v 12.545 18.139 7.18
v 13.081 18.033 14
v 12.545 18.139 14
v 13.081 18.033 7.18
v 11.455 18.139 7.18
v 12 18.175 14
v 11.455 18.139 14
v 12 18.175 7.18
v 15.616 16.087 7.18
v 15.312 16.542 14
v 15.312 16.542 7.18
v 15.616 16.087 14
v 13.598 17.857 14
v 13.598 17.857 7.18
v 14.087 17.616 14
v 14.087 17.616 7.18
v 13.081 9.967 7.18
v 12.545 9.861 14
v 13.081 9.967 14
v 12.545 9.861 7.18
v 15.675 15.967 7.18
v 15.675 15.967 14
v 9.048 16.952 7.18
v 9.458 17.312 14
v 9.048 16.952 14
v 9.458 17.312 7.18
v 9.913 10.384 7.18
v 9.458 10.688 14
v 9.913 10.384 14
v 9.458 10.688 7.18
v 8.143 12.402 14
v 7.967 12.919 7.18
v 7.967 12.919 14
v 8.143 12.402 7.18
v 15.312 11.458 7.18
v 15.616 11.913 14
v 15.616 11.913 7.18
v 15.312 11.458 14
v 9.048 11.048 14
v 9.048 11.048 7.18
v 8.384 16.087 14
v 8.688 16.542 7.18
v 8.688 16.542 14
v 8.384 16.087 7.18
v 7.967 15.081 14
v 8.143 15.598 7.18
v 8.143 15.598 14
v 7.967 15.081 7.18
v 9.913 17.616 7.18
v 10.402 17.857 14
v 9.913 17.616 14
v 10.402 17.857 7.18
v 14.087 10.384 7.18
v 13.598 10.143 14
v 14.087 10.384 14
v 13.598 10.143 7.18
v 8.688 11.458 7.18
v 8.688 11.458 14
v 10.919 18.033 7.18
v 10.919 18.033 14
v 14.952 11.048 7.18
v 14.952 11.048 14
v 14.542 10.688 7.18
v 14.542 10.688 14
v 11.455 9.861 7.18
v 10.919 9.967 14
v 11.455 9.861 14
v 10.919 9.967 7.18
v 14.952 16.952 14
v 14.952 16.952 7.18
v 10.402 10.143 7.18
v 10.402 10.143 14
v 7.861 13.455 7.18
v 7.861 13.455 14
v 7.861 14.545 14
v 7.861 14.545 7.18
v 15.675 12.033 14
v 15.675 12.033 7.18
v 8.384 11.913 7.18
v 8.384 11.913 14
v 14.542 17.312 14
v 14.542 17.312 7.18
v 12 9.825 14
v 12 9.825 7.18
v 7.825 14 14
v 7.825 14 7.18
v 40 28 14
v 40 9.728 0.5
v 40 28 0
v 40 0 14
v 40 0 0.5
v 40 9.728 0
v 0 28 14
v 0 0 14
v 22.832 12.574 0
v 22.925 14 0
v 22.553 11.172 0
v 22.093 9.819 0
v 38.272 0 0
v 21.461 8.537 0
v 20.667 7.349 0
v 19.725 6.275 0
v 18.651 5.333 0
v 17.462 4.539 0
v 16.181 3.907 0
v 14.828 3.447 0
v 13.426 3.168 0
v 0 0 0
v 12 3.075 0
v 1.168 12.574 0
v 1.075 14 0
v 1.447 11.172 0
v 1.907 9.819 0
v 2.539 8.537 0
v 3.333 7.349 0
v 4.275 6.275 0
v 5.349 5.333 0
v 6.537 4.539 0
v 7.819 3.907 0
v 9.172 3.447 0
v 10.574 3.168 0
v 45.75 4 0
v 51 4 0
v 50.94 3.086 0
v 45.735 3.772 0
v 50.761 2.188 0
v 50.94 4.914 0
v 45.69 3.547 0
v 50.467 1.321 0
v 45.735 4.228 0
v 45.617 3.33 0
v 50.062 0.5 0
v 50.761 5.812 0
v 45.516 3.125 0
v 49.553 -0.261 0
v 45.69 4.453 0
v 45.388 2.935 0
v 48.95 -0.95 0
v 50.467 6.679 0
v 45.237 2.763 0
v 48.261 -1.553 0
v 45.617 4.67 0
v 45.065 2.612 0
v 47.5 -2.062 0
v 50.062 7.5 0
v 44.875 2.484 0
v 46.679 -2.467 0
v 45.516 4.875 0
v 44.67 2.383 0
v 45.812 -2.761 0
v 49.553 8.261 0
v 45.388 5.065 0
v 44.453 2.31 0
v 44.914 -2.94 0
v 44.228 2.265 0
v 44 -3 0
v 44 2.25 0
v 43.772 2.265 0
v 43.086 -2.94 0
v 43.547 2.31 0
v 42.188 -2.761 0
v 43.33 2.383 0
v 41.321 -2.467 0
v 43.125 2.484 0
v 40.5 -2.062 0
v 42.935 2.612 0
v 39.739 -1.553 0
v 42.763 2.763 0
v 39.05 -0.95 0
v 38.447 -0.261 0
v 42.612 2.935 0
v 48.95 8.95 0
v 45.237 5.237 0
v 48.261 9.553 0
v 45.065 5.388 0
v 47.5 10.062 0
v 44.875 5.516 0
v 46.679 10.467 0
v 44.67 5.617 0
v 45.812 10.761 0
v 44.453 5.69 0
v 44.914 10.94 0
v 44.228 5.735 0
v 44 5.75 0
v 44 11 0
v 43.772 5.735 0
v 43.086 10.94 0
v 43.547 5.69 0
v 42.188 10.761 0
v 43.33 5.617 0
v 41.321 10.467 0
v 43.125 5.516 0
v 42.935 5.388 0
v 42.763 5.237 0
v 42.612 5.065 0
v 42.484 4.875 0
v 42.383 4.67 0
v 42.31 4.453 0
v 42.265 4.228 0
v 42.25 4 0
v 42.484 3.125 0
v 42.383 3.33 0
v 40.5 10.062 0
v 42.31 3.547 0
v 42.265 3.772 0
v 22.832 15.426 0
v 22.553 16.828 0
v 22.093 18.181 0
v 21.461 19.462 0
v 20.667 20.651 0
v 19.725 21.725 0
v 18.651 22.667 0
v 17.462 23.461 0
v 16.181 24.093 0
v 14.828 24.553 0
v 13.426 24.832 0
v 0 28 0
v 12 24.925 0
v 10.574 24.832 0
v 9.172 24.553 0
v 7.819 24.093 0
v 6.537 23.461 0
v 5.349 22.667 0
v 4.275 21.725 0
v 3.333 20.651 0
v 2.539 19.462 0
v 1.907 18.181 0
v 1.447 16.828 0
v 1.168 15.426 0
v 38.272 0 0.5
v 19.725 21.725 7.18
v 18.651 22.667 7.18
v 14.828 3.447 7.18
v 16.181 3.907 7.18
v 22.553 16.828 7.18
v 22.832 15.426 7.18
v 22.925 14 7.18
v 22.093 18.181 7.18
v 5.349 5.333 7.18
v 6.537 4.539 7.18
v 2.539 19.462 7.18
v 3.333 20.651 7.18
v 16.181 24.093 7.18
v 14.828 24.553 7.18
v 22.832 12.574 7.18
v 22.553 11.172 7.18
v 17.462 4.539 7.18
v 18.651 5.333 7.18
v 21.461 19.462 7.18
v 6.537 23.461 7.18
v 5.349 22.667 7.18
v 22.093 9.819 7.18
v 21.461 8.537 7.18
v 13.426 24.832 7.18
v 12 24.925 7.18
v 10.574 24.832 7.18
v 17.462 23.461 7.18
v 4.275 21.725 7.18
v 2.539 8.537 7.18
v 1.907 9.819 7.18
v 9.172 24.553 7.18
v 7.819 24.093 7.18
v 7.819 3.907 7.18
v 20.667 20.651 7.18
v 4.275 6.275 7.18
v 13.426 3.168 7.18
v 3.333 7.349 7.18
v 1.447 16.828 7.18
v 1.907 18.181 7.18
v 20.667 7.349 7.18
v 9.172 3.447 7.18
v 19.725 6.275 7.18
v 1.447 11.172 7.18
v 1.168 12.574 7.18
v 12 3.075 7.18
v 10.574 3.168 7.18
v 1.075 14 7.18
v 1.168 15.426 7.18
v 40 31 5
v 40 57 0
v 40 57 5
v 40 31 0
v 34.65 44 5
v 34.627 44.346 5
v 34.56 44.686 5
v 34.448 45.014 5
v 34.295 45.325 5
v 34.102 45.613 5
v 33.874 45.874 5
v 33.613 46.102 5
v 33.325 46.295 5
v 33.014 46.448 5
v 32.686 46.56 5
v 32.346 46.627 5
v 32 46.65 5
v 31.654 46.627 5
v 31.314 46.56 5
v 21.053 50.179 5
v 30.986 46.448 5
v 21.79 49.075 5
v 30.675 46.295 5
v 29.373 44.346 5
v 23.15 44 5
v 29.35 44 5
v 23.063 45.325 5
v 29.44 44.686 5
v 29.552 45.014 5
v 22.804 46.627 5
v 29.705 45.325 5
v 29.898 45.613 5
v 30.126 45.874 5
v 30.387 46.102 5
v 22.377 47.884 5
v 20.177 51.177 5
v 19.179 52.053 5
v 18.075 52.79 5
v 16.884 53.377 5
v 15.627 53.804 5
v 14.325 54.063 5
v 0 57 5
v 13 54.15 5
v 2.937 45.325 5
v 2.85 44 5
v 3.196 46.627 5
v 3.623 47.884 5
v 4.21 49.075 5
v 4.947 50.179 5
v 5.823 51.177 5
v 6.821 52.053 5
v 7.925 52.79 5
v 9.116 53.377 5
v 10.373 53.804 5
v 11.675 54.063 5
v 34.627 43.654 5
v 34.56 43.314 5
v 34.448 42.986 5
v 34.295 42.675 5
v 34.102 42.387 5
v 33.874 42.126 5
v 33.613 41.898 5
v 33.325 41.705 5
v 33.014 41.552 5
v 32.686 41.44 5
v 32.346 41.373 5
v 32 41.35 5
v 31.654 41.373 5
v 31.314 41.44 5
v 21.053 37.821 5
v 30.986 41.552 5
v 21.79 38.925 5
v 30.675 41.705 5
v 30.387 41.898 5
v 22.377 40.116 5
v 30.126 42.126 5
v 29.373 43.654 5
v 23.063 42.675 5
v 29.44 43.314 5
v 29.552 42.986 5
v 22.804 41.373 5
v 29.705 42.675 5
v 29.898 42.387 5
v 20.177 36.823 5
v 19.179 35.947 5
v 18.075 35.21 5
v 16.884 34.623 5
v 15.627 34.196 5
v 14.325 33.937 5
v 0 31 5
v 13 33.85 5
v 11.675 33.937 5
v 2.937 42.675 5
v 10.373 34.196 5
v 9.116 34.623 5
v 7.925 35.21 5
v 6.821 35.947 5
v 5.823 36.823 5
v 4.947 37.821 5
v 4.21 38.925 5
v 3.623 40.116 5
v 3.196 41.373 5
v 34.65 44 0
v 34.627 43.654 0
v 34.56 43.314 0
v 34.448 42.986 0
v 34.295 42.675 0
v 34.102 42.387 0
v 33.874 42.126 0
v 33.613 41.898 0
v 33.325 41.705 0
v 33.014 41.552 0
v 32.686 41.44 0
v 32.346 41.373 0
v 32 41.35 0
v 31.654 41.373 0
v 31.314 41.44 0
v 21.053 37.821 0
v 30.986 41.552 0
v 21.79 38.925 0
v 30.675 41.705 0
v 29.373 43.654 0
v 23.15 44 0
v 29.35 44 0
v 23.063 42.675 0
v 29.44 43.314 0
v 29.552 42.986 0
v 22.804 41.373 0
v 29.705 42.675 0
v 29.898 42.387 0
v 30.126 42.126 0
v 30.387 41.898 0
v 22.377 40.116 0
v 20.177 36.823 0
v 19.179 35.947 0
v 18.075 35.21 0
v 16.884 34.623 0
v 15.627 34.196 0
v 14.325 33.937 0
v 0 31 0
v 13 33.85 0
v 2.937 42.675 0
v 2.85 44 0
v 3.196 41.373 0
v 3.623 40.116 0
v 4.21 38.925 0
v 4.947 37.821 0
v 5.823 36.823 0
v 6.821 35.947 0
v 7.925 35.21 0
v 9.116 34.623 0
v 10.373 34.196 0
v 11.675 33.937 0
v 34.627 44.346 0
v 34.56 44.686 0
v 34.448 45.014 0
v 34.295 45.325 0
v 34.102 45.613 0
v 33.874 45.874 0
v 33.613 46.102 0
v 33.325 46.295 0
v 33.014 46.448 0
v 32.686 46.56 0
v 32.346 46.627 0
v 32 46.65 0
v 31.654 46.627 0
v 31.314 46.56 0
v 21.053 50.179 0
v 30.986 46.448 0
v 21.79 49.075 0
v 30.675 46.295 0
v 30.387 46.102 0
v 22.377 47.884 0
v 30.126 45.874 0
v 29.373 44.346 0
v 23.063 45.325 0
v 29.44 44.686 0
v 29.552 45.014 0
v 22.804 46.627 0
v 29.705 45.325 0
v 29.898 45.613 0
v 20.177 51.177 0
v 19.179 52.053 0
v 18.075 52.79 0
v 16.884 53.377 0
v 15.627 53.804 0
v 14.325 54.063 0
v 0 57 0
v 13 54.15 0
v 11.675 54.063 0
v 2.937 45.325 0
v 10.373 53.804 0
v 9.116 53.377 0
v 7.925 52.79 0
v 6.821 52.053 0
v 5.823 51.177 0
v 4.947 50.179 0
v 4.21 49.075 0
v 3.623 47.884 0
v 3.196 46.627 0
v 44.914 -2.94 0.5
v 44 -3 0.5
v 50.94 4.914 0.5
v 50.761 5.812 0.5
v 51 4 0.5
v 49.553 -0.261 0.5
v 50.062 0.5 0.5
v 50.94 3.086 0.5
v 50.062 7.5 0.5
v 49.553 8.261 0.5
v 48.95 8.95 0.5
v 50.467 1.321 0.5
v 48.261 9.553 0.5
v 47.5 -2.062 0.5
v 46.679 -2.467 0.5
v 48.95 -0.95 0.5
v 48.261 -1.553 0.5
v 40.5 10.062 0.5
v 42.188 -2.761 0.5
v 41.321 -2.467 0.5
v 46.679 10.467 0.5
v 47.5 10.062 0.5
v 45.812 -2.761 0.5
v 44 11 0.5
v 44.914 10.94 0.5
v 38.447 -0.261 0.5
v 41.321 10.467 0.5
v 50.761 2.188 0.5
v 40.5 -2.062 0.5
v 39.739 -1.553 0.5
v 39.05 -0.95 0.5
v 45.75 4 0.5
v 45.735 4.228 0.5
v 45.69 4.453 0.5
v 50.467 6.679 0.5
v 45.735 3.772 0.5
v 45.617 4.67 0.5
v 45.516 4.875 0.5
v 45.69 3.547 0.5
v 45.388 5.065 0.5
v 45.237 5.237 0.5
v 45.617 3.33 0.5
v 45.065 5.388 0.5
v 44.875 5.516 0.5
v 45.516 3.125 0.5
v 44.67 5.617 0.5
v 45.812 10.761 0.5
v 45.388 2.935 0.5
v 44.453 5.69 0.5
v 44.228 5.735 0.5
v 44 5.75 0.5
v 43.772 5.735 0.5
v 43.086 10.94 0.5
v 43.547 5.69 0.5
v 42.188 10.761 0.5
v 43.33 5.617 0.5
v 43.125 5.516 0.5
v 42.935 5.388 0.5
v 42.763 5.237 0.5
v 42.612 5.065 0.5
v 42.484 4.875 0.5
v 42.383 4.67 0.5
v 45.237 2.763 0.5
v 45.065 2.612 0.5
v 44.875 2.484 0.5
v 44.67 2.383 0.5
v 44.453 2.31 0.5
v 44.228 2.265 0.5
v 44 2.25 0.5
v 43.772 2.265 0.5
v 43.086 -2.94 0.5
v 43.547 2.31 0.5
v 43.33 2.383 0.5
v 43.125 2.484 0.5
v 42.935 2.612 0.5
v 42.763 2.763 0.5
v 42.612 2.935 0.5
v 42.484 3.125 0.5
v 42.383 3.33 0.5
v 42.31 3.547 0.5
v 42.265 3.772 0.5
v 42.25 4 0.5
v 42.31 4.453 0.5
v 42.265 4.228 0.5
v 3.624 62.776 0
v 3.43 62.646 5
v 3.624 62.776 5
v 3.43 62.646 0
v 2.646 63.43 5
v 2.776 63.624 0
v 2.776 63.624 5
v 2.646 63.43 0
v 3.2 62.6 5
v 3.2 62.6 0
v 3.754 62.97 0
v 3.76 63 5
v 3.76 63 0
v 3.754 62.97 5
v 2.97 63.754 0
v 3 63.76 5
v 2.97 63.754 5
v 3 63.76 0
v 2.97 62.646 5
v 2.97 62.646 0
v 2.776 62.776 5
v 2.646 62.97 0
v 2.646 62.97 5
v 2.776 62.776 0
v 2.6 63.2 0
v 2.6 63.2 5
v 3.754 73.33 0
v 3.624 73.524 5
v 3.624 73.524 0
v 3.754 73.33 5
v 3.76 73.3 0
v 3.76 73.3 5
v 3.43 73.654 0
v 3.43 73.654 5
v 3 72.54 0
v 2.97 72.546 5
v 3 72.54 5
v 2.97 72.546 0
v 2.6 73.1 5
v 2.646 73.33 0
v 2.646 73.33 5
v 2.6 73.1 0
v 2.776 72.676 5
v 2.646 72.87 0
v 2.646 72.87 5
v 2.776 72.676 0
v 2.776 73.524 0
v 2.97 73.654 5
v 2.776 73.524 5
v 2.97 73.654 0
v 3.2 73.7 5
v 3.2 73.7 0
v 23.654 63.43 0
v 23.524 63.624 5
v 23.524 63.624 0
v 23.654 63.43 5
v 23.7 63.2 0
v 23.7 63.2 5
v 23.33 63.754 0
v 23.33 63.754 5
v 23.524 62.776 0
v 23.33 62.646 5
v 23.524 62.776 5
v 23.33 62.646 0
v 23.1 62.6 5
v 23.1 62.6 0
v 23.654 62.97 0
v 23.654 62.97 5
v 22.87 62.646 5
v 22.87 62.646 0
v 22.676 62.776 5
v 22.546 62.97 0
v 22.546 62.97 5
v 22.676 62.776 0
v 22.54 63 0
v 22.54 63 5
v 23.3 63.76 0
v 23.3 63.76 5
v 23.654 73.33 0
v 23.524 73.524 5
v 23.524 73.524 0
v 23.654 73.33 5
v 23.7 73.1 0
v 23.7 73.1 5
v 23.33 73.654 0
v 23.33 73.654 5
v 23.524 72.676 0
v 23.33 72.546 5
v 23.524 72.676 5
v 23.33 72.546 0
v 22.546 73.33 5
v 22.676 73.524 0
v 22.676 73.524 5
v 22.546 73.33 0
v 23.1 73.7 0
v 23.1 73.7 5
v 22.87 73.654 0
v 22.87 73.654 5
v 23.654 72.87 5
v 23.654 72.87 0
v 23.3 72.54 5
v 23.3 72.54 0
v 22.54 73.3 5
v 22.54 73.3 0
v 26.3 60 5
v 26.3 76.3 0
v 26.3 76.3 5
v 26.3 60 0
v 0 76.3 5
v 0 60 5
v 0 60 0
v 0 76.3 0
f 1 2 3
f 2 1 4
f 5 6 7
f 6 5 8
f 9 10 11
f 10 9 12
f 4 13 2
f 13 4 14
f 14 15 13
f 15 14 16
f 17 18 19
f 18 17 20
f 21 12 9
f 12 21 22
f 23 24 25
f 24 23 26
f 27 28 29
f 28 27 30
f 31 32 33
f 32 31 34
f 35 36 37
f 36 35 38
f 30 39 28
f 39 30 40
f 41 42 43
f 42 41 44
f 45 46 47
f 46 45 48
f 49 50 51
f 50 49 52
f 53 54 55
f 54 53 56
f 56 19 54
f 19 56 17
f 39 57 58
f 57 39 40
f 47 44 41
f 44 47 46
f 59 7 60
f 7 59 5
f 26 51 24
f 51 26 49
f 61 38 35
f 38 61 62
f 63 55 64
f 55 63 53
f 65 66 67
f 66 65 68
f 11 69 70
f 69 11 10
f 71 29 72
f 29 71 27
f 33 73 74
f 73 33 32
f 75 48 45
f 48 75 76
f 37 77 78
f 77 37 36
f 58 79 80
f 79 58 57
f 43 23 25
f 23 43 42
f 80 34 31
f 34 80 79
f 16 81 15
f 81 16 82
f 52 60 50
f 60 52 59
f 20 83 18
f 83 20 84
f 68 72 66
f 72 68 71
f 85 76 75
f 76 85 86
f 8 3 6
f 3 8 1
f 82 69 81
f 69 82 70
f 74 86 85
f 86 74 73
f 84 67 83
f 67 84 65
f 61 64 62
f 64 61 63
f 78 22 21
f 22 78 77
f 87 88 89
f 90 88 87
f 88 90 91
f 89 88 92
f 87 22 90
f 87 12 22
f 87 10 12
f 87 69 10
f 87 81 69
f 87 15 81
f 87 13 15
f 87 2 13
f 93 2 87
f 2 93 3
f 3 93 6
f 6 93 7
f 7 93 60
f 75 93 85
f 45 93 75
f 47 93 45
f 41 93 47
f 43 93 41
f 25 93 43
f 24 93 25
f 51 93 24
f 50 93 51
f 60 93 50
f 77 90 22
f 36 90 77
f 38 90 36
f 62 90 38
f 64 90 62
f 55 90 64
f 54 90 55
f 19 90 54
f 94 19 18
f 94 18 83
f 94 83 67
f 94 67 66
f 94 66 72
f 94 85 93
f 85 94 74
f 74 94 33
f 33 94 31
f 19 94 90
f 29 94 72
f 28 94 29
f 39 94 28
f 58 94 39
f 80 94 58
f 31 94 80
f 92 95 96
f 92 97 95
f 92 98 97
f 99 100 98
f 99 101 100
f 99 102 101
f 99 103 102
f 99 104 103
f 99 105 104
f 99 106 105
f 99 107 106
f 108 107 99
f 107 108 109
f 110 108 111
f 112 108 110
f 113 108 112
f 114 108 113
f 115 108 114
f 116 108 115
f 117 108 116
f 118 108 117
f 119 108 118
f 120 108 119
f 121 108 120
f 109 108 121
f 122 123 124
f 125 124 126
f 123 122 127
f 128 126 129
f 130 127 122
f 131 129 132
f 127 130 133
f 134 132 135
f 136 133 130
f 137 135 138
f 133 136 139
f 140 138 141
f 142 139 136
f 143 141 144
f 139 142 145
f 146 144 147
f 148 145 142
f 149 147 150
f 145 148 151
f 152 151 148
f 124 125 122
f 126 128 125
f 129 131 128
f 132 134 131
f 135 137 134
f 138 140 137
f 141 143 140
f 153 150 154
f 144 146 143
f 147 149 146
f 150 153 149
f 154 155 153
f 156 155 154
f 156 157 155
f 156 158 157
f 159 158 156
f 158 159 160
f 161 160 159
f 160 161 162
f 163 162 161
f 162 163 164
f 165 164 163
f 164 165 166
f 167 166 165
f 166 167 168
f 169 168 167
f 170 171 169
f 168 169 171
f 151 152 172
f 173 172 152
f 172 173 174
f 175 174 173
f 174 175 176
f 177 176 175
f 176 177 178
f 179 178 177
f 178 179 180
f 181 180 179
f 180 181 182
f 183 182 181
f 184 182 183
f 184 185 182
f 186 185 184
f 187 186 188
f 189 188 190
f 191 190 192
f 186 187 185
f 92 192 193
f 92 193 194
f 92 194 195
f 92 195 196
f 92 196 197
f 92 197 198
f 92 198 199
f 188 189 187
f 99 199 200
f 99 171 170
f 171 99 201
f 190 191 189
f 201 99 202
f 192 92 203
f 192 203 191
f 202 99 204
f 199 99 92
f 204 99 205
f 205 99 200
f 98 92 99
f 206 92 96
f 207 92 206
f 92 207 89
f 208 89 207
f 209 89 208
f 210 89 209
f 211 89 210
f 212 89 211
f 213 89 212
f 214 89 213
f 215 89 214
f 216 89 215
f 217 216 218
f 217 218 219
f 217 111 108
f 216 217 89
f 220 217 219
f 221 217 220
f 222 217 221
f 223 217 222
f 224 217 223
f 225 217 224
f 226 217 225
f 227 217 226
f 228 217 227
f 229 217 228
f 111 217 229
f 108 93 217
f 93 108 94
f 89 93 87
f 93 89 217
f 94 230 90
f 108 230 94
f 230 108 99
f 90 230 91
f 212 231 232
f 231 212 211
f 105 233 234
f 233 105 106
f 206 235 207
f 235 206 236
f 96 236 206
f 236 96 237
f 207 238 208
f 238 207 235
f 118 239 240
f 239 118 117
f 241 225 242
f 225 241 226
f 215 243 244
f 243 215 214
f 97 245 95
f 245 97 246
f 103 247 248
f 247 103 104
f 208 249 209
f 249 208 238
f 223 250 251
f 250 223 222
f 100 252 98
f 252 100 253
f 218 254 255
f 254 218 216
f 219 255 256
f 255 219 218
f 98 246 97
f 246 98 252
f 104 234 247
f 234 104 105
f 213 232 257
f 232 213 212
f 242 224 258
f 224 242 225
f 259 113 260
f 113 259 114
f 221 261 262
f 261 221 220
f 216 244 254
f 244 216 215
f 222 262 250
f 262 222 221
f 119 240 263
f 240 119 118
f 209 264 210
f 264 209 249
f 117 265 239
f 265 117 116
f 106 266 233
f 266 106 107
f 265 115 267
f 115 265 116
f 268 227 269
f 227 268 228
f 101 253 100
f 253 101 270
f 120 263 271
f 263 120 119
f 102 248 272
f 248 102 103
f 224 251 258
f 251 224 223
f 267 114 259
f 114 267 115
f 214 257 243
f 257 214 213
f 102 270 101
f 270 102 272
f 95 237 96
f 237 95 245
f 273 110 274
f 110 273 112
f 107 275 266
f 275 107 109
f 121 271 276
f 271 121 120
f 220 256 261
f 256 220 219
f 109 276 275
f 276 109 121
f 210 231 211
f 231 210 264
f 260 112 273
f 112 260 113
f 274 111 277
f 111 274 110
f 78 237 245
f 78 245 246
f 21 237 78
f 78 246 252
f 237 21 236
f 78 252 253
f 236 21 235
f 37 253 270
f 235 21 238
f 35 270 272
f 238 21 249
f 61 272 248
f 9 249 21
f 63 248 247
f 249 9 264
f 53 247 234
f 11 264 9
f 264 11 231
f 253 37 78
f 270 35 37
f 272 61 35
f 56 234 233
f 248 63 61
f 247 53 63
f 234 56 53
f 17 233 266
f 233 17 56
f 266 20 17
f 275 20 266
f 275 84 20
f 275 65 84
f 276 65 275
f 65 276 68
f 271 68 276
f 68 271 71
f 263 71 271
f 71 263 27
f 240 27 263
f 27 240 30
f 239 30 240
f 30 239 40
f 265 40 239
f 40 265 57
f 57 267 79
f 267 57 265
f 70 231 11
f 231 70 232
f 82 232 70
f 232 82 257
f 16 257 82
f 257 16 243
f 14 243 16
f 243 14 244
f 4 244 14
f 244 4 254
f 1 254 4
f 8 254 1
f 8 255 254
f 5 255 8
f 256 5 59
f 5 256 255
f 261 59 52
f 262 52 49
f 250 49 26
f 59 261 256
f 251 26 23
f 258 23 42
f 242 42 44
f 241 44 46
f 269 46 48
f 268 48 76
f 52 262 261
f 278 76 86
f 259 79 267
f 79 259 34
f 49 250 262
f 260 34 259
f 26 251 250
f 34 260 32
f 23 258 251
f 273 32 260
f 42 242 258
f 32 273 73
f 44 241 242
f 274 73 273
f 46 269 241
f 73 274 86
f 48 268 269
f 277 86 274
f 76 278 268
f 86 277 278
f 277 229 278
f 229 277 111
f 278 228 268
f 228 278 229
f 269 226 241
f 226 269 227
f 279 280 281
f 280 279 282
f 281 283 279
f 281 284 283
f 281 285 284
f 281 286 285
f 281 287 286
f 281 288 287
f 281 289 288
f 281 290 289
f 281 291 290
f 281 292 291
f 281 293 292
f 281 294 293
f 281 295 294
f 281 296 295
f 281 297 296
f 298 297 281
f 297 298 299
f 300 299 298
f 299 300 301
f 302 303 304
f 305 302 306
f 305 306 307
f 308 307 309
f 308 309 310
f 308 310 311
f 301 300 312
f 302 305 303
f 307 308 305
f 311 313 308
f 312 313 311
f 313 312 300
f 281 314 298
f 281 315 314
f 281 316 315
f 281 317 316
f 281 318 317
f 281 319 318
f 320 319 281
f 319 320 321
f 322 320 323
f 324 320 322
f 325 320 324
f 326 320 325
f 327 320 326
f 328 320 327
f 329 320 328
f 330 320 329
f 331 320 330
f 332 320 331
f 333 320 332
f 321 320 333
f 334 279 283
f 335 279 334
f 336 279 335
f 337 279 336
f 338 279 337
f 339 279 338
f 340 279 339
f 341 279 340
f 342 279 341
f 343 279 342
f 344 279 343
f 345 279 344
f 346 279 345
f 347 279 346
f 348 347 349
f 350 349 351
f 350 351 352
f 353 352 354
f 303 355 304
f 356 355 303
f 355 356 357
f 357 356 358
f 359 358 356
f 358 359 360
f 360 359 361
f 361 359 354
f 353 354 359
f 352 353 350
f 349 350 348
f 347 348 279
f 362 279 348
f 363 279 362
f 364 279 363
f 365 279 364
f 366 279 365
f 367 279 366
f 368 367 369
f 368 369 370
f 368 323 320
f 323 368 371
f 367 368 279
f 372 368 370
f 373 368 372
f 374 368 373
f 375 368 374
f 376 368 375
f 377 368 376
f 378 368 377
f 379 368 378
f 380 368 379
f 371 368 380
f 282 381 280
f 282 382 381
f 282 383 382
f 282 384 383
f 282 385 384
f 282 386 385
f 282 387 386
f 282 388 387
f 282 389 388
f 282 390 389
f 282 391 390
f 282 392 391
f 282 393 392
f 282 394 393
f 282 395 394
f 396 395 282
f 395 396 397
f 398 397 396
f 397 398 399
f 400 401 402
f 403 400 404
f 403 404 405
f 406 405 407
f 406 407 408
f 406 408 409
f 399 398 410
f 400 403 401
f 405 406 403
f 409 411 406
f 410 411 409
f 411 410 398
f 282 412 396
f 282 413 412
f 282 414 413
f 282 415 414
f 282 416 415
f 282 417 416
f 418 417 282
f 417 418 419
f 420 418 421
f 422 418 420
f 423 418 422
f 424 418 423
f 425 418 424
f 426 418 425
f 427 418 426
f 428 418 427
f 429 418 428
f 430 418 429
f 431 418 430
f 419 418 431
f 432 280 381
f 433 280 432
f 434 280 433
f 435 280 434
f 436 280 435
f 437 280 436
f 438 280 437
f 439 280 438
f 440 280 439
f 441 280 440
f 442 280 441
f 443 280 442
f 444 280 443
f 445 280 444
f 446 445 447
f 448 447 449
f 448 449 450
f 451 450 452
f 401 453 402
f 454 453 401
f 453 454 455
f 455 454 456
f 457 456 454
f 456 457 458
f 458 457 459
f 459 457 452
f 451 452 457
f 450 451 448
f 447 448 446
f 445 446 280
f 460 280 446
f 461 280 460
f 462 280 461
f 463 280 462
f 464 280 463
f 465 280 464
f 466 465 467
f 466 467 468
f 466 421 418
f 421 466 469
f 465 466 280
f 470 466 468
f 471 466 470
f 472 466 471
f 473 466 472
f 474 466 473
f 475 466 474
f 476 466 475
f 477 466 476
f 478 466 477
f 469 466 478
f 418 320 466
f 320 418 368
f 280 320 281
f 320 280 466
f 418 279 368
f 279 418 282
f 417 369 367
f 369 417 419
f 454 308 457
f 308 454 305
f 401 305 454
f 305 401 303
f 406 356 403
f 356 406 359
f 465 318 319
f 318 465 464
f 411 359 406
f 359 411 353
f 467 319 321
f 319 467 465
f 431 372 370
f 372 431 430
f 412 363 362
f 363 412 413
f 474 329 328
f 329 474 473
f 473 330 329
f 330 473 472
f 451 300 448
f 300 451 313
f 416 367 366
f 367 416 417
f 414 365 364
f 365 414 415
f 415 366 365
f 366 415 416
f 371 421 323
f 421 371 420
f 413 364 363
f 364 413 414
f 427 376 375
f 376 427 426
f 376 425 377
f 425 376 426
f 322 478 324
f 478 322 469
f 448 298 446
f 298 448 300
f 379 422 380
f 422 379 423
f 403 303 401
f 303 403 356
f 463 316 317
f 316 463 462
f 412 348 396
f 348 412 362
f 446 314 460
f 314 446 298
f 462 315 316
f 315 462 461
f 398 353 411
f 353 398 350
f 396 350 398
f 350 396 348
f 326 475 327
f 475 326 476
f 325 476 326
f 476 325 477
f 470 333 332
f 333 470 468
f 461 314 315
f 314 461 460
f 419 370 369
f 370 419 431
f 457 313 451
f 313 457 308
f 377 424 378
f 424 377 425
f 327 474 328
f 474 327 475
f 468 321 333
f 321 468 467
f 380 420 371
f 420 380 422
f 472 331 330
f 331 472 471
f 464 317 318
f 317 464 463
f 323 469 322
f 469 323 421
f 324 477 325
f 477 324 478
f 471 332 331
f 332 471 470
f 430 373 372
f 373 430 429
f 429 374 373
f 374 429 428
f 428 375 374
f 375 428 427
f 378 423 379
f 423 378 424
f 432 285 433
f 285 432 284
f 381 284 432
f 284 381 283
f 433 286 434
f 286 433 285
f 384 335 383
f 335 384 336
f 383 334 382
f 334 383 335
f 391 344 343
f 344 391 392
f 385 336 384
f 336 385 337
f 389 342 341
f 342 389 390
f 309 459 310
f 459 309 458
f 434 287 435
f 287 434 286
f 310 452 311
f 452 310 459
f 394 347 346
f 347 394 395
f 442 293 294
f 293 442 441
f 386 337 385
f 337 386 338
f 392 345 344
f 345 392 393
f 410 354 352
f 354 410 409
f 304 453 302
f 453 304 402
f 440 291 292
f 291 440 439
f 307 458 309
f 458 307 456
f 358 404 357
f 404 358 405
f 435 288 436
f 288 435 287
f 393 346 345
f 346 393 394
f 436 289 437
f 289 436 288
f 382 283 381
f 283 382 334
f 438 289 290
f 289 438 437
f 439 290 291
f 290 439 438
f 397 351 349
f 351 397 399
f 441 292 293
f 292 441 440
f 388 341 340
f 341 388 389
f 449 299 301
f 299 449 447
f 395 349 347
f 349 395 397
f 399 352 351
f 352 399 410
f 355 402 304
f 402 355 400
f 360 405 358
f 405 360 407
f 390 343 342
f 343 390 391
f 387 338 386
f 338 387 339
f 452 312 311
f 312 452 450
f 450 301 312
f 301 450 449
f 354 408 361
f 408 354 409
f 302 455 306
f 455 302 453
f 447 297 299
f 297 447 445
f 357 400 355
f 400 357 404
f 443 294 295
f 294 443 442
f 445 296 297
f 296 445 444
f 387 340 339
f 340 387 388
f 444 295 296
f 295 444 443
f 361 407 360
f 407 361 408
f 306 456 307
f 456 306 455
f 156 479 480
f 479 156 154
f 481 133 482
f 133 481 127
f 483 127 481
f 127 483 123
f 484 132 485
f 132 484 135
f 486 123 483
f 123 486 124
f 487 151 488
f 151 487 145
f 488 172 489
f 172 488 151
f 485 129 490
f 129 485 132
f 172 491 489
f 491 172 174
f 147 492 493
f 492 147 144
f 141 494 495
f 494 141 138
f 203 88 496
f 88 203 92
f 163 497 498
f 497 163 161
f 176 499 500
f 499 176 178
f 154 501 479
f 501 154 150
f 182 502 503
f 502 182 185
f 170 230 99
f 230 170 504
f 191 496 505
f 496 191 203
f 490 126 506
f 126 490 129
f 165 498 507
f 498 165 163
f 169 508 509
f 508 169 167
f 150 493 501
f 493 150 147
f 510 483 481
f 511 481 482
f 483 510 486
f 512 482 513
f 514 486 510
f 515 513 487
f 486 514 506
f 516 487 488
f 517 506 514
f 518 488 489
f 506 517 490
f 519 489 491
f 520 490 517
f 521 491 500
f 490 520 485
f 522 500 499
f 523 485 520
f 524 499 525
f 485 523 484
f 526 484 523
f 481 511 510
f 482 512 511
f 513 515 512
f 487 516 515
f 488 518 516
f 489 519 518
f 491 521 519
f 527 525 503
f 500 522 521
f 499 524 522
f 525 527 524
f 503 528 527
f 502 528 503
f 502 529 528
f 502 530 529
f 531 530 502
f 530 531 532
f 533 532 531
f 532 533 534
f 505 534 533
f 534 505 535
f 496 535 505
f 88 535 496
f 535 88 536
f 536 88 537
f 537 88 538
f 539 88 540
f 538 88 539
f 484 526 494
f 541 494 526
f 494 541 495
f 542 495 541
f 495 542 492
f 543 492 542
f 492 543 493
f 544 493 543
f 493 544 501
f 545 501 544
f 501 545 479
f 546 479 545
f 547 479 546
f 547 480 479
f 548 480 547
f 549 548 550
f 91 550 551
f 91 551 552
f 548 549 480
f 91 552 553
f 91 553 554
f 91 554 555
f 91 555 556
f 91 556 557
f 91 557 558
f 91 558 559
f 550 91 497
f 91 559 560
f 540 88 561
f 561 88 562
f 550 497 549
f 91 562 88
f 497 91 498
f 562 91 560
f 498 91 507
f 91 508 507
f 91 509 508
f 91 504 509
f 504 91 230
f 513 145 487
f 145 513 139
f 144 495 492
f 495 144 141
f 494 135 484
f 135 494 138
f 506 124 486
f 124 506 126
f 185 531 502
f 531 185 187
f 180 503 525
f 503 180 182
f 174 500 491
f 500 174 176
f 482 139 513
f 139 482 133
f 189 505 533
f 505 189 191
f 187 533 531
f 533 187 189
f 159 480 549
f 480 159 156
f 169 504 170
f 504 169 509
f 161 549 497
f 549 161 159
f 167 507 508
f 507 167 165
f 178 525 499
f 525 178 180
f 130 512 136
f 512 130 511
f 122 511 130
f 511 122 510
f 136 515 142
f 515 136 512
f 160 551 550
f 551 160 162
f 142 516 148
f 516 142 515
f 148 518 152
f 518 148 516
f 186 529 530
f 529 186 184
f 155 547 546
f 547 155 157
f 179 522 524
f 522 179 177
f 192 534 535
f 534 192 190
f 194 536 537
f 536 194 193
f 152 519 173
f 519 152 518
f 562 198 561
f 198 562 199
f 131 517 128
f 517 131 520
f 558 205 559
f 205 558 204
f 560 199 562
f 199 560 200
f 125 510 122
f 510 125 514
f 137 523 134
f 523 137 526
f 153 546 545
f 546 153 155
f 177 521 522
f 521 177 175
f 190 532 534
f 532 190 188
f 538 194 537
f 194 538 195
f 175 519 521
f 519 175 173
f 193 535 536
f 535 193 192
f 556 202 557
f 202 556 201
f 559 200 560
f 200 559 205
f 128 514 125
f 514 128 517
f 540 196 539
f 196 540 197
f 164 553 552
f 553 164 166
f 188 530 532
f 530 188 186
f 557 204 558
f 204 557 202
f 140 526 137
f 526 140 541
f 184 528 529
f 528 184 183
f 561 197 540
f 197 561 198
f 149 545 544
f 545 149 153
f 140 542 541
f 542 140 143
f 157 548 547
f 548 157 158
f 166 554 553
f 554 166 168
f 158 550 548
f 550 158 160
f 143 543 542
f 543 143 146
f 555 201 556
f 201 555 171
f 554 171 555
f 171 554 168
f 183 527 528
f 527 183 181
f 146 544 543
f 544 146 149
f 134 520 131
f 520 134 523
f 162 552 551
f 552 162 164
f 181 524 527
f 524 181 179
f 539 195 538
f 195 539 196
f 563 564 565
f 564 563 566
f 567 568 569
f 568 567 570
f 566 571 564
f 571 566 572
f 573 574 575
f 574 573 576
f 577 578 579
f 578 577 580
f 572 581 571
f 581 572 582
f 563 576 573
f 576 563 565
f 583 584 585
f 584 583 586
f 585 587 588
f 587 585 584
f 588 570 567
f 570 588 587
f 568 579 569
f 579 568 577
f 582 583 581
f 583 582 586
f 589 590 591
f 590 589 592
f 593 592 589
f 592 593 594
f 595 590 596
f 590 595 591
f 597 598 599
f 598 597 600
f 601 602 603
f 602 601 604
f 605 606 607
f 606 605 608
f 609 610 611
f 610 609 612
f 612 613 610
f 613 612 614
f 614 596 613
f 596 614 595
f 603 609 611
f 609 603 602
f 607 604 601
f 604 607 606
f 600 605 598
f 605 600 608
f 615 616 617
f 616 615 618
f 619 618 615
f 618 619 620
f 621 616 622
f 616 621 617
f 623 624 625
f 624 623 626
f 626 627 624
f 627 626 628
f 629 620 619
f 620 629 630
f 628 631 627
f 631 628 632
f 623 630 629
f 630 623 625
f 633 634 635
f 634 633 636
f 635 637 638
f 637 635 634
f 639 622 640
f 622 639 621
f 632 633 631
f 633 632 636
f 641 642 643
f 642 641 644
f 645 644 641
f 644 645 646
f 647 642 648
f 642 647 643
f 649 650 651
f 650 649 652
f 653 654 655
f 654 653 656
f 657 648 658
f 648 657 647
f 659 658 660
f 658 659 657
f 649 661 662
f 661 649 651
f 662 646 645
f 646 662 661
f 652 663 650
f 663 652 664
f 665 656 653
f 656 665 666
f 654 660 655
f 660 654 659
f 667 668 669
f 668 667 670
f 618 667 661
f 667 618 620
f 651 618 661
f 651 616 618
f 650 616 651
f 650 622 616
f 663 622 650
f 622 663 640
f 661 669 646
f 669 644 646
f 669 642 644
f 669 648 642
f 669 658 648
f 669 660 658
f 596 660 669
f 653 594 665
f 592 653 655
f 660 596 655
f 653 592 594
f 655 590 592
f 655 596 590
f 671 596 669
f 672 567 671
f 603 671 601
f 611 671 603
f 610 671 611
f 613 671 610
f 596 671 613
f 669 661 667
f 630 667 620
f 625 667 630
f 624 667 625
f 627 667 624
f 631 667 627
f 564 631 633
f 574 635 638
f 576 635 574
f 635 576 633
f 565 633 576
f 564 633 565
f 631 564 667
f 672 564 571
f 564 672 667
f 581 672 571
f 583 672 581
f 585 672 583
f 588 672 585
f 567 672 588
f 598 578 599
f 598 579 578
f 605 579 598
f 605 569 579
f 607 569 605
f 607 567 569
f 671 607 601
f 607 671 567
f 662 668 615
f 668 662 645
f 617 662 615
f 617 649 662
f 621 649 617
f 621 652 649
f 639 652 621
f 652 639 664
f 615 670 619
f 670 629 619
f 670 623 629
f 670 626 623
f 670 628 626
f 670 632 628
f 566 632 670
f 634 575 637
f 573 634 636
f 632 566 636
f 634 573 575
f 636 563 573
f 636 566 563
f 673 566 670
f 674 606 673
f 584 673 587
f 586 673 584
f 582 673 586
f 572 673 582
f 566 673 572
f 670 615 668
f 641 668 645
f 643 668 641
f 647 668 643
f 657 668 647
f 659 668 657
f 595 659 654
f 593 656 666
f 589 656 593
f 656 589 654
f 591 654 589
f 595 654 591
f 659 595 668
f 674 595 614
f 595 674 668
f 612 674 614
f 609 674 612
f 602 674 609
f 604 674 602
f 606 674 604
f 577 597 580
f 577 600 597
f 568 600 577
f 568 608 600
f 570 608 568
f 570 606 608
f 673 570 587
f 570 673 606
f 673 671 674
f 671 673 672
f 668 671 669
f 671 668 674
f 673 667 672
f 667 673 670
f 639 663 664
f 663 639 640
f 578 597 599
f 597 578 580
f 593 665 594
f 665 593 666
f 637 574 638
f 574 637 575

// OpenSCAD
// Gen-CK — fit coupon: O20/O5 THROUGH pockets at carrier thickness (test on a steel offcut), 608 seat,
// D-flat bore, gap shim, and one bobbin-bay slice (bobbin footprint + bay_clear) to test former fit.
include <parameters.scad>;
$fn = 48;
// D-flat keyed bore: flat faces +X (angle 0 = magnet pocket 0 = index notch)
module dflat_bore(h) {
    intersection() {
        cylinder(d=shaft_bore, h=h);
        translate([-shaft_bore, -shaft_bore, 0]) cube([shaft_bore + dflat_x, 2*shaft_bore, h]);
    }
}
module sector_2d(r_in, r_out, ang) {
    polygon([
        for (a = [-ang/2 : ang/24 : ang/2]) [r_in*cos(a), r_in*sin(a)],
        for (a = [ang/2 : -ang/24 : -ang/2]) [r_out*cos(a), r_out*sin(a)]
    ]);
}
module footprint_2d() { offset(r=wall) sector_2d(coil_id_r, coil_od_r, span_deg); }
module hub_2d()       { offset(delta=-coil_core_inset) sector_2d(coil_id_r, coil_od_r, span_deg); }

block_w = 40; block_d = 28; block_h = 14;
difference() {
    cube([block_w, block_d, block_h]);
    translate([12, block_d/2, -0.02]) cylinder(d=bearing_d, h=bearing_h);
    translate([12, block_d/2, -0.1]) dflat_bore(block_h + 1);
}
translate([0, block_d + 3, 0]) difference() {
    cube([40, 26, carrier_thick]);
    translate([13, 13, -0.1]) cylinder(d=large_pocket_d, h=carrier_thick + 0.2);
    translate([32, 13, -0.1]) cylinder(d=small_pocket_d, h=carrier_thick + 0.2);
}
translate([block_w + 4, 4, 0])
    difference() {
        cylinder(d=spacer_pad_od, h=gap_spacer_h);
        translate([0, 0, -0.1]) cylinder(d=spacer_pad_id, h=gap_spacer_h + 0.2);
    }
// N42 20x10x5 BLOCK through-pocket test (block + block_pocket_clear, 1.2 mm corner reliefs), 2026-10-16
translate([0, block_d + 3 + 26 + 3, 0]) difference() {
    cube([block_tangential + block_pocket_clear + 6, block_radial + block_pocket_clear + 6, carrier_thick]);
    translate([3, 3, -0.1]) cube([block_tangential + block_pocket_clear, block_radial + block_pocket_clear, carrier_thick + 0.2]);
    for (x = [3.2, 3 + block_tangential + block_pocket_clear - 0.2], y = [3.2, 3 + block_radial + block_pocket_clear - 0.2])
        translate([x, y, -0.1]) cylinder(d=1.2, h=carrier_thick + 0.2, $fn=16);
}
